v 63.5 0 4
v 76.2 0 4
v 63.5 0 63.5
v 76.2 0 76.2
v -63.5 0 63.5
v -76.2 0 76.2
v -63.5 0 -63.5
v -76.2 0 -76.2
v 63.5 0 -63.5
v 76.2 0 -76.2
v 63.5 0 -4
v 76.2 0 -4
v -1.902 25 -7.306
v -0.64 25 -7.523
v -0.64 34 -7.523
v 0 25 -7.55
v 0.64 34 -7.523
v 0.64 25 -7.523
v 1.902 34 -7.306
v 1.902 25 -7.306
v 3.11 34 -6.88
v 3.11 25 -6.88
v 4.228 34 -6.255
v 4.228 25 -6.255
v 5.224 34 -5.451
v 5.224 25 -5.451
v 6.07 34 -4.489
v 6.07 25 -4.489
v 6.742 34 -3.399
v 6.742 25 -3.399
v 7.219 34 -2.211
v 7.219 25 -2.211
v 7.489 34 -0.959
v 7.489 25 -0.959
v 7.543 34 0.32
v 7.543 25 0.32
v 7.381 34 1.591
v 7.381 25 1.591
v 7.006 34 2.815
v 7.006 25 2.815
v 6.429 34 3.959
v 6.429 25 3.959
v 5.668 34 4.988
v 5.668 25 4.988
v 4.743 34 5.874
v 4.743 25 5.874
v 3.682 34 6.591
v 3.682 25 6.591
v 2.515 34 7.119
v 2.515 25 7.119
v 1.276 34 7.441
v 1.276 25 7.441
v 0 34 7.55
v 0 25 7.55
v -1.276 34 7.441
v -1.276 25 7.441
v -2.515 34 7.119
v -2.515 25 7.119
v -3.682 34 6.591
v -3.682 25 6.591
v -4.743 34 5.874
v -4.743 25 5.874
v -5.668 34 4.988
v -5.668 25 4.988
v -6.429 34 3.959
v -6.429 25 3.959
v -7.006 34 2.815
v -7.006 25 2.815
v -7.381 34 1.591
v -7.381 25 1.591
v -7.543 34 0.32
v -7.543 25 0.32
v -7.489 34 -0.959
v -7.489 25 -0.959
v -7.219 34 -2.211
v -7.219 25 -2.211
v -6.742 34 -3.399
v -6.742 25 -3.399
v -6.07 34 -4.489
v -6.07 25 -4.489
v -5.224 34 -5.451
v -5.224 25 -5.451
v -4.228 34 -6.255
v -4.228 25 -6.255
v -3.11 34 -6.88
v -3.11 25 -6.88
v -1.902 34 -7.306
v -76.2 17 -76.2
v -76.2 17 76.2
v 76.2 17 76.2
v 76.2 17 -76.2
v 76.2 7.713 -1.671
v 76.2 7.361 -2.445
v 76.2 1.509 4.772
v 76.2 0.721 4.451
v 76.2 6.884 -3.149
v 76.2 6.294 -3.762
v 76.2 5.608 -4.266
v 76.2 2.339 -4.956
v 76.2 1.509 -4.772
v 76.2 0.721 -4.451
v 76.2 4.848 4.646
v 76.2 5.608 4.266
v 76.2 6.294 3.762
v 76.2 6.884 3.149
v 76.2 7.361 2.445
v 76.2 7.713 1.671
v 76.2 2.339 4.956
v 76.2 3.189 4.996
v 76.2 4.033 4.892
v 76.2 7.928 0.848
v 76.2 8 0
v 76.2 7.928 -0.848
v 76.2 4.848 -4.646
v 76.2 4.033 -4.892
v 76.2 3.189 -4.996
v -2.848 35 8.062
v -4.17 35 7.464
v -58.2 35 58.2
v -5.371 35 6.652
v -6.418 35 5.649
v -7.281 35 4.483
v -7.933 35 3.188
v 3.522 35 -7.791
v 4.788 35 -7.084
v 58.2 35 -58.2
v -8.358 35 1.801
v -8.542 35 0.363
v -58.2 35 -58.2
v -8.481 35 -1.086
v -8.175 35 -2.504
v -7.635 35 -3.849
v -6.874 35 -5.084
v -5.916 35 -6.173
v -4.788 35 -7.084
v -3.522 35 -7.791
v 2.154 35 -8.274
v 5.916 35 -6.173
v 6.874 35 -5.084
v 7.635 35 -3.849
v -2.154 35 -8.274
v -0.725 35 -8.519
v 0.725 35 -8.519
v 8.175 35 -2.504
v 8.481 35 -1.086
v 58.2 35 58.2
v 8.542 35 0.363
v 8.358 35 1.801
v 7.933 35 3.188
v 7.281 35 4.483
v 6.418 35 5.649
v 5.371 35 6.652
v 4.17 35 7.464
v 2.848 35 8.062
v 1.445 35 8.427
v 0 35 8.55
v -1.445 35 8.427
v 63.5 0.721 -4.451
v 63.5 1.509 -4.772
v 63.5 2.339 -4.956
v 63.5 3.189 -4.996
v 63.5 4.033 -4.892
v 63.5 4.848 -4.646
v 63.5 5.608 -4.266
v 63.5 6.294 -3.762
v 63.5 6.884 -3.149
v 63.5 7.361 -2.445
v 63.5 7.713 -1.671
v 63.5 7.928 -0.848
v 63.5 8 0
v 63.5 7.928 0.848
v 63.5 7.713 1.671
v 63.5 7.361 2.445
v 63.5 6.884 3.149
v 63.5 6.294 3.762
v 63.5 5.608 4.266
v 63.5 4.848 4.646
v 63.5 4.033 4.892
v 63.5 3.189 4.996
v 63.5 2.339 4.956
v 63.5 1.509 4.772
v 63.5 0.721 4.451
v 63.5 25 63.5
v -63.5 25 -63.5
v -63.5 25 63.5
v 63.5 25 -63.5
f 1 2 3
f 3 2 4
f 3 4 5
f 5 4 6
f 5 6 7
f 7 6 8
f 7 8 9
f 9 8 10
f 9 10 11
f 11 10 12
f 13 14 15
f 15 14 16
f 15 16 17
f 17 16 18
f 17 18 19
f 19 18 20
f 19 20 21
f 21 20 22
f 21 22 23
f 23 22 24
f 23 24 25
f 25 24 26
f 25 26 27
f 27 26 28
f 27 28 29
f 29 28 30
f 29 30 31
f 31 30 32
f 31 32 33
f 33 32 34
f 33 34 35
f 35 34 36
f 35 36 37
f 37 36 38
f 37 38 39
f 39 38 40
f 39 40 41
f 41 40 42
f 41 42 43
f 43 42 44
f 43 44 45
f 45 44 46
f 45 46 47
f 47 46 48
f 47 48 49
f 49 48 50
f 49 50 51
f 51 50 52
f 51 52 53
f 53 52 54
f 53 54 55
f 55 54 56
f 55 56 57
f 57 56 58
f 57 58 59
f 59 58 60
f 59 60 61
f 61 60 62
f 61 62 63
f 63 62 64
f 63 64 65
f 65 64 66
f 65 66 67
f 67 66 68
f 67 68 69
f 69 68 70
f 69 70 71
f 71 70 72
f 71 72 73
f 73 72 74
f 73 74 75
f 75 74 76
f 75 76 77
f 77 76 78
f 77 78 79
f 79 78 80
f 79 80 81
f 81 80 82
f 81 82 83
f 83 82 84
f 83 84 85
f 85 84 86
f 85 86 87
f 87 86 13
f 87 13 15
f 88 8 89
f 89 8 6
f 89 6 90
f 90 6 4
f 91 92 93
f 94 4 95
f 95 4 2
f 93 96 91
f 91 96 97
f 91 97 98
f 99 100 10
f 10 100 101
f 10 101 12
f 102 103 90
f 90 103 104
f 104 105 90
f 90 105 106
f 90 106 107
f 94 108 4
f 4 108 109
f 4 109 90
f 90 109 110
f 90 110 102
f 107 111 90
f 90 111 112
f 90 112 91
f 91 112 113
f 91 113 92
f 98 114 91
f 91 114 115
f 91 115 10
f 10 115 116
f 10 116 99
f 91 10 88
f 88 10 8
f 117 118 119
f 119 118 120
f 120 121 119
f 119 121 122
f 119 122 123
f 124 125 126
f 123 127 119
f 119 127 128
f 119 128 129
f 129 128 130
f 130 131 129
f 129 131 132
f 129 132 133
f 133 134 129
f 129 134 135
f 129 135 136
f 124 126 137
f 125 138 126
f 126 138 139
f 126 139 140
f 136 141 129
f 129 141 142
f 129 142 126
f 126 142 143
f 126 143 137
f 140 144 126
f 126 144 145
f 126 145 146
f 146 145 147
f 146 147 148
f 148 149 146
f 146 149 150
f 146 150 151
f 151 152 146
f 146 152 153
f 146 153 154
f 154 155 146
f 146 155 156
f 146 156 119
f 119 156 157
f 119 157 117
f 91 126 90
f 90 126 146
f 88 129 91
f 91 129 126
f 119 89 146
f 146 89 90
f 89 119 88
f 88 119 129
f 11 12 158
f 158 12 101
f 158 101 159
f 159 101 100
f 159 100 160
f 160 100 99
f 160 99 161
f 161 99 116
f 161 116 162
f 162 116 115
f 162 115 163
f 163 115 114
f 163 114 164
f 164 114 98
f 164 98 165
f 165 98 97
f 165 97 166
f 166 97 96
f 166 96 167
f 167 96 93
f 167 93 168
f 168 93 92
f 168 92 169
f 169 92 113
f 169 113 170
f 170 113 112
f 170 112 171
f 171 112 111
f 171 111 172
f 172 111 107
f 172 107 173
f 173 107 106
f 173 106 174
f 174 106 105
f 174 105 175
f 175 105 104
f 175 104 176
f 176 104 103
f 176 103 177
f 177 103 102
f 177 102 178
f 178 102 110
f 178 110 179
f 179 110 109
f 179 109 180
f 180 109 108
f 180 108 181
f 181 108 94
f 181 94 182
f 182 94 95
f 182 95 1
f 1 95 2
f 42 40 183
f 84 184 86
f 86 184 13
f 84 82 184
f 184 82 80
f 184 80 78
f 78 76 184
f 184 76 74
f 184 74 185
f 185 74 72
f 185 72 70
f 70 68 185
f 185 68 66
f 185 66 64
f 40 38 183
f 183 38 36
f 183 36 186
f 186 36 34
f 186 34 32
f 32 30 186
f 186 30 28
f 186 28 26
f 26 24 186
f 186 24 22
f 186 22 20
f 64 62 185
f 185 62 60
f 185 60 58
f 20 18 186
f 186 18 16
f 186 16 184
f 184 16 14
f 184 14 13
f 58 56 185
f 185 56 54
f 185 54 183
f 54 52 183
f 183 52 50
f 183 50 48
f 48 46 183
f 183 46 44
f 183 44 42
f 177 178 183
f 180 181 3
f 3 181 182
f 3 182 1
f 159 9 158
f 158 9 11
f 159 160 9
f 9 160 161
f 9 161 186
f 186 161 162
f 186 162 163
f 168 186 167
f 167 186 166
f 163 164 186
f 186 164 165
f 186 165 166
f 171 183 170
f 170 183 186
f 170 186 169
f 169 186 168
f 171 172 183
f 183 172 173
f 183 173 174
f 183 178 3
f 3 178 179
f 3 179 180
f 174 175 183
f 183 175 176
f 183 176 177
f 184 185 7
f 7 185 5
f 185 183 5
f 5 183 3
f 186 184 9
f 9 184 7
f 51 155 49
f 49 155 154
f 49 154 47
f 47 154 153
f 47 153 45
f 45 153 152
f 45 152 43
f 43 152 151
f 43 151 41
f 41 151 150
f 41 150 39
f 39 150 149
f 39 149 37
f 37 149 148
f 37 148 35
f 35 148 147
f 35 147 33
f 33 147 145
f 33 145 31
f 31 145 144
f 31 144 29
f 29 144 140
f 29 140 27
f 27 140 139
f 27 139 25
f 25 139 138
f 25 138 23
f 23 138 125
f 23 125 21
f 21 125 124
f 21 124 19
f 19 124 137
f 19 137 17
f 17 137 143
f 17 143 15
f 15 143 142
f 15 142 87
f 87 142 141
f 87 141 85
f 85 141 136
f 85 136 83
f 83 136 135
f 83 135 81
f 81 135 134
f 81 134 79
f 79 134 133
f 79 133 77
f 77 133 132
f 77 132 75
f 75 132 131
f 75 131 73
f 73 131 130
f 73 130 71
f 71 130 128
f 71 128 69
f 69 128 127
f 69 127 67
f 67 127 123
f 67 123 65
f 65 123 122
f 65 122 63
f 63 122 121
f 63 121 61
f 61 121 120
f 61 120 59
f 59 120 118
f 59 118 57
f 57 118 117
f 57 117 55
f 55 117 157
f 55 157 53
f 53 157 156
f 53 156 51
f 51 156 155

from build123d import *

# Parameters (mm, degrees)
SKETCH1_W               = 152.4
SKETCH1_H               = 152.4
BOSS_EXTRUDE1_DEPTH     = 35
SKETCH2_R               = 7.55
CUT_EXTRUDE1_DEPTH      = 114.304368848
CHAMFER1_SIZE           = 18
CUT_EXTRUDE2_REACH      = 175.946
CUT_EXTRUDE2_END_RADIUS = 7.55
SKETCH4_R               = 5
SKETCH5_W               = 127
SKETCH5_H               = 127
CUT_EXTRUDE3_DEPTH      = 25
CHAMFER3_SIZE           = 1


with BuildPart() as part:
    # Sketch1 → Boss-Extrude1 (new body)
    with BuildSketch(Plane(origin=(0, 0, 0), x_dir=(1, 0, 0), z_dir=(0, 1, 0))):
        Rectangle(SKETCH1_W, SKETCH1_H)
    extrude(amount=BOSS_EXTRUDE1_DEPTH)

    # Sketch2 → Cut-Extrude1 (cut, through all)
    with BuildSketch(Plane(origin=(0, 35, 0), x_dir=(1, 0, 0), z_dir=(0, 1, 0))):
        with Locations(Location((0, 0, 0), (0, 0, 270))):
            Circle(SKETCH2_R)
    extrude(amount=-CUT_EXTRUDE1_DEPTH, mode=Mode.SUBTRACT)

    # Chamfer1
    chamfer1_edges = [part.edges().sort_by_distance(p)[0] for p in [
        (76.2, 35, 0),
        (0, 35, -76.2),
        (-76.2, 35, 0),
        (0, 35, 76.2),
    ]]
    chamfer(chamfer1_edges, length=CHAMFER1_SIZE)

    # Cut-Extrude2: up to this cylinder (the profile starts outside it)
    cut_extrude2_end = Plane(origin=(0, 3, 0), z_dir=(0, 1, 0)) * Cylinder(CUT_EXTRUDE2_END_RADIUS, 367.992, mode=Mode.PRIVATE)
    # Sketch4 → Cut-Extrude2 (cut, up to the surface)
    with BuildSketch(Plane(origin=(76.2, 0, 0), x_dir=(0, 0, -1), z_dir=(1, 0, 0)), mode=Mode.PRIVATE) as cut_extrude2_sk1:
        with Locations((0, 3)):
            Circle(SKETCH4_R)
    cut_extrude2_tool1 = extrude(cut_extrude2_sk1.sketch, amount=-CUT_EXTRUDE2_REACH, mode=Mode.PRIVATE) - cut_extrude2_end
    add(cut_extrude2_tool1.solids().sort_by_distance((76.2, 3, 0))[0], mode=Mode.SUBTRACT)

    # Sketch5 → Cut-Extrude3 (cut)
    with BuildSketch(Plane.XZ):
        Rectangle(SKETCH5_W, SKETCH5_H)
    extrude(amount=-CUT_EXTRUDE3_DEPTH, mode=Mode.SUBTRACT)

    # Chamfer3
    chamfer3_edges = [part.edges().sort_by_distance(p)[0] for p in [
        (0, 35, -7.55),
    ]]
    chamfer(chamfer3_edges, length=CHAMFER3_SIZE)


solid = part.part
